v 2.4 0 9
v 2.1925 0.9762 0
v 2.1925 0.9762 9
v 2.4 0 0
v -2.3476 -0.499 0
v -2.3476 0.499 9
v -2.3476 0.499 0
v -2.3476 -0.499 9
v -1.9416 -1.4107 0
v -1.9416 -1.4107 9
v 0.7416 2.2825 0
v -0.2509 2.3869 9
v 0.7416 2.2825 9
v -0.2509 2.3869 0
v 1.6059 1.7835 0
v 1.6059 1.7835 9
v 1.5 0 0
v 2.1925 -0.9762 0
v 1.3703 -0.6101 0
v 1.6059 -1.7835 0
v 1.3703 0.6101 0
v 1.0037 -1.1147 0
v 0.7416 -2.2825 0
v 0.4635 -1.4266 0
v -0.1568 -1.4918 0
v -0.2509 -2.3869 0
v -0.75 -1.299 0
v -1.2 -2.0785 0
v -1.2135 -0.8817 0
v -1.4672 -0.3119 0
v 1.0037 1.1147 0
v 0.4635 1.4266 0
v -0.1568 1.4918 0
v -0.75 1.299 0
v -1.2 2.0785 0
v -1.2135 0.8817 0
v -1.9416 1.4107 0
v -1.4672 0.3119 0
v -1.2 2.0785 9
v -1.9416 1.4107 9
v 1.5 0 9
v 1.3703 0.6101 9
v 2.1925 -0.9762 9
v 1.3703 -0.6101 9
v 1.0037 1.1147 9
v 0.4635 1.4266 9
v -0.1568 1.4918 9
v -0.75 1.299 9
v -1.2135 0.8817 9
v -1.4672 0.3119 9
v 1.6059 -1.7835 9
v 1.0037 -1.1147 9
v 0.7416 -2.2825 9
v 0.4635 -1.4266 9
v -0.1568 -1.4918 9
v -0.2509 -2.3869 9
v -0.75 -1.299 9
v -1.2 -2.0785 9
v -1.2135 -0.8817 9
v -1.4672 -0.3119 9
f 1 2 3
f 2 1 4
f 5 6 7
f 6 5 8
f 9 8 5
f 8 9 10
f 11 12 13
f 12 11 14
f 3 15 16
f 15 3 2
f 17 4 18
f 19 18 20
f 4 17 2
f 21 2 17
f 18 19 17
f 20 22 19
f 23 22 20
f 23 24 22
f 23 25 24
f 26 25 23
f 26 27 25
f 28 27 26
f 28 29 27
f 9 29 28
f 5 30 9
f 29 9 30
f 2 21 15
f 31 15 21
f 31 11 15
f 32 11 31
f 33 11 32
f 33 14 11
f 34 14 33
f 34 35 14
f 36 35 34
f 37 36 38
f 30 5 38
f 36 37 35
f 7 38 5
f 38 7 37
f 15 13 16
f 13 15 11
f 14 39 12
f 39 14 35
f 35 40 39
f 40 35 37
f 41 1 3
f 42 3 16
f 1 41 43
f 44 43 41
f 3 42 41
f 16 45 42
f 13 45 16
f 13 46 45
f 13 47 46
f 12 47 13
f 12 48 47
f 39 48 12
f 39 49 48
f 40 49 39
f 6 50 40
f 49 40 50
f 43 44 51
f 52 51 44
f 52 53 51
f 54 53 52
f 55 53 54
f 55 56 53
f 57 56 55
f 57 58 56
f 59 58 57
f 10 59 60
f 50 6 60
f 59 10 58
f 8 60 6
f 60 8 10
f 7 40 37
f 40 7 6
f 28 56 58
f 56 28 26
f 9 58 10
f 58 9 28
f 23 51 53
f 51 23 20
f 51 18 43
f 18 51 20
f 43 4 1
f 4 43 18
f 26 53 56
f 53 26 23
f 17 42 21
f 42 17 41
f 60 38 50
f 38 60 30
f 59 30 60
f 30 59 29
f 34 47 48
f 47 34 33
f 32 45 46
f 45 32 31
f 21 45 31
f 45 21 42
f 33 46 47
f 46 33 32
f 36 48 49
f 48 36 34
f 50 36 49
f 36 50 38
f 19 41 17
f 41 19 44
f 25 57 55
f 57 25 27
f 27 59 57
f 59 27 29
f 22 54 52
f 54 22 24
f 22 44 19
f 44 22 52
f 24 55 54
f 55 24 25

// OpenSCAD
$fn = 15;

spacer_led();


module spacer_led() {
    difference(){
        cylinder(h=9, r=2.4);
            cylinder(h=9, r=1.5);
        
    };
}
